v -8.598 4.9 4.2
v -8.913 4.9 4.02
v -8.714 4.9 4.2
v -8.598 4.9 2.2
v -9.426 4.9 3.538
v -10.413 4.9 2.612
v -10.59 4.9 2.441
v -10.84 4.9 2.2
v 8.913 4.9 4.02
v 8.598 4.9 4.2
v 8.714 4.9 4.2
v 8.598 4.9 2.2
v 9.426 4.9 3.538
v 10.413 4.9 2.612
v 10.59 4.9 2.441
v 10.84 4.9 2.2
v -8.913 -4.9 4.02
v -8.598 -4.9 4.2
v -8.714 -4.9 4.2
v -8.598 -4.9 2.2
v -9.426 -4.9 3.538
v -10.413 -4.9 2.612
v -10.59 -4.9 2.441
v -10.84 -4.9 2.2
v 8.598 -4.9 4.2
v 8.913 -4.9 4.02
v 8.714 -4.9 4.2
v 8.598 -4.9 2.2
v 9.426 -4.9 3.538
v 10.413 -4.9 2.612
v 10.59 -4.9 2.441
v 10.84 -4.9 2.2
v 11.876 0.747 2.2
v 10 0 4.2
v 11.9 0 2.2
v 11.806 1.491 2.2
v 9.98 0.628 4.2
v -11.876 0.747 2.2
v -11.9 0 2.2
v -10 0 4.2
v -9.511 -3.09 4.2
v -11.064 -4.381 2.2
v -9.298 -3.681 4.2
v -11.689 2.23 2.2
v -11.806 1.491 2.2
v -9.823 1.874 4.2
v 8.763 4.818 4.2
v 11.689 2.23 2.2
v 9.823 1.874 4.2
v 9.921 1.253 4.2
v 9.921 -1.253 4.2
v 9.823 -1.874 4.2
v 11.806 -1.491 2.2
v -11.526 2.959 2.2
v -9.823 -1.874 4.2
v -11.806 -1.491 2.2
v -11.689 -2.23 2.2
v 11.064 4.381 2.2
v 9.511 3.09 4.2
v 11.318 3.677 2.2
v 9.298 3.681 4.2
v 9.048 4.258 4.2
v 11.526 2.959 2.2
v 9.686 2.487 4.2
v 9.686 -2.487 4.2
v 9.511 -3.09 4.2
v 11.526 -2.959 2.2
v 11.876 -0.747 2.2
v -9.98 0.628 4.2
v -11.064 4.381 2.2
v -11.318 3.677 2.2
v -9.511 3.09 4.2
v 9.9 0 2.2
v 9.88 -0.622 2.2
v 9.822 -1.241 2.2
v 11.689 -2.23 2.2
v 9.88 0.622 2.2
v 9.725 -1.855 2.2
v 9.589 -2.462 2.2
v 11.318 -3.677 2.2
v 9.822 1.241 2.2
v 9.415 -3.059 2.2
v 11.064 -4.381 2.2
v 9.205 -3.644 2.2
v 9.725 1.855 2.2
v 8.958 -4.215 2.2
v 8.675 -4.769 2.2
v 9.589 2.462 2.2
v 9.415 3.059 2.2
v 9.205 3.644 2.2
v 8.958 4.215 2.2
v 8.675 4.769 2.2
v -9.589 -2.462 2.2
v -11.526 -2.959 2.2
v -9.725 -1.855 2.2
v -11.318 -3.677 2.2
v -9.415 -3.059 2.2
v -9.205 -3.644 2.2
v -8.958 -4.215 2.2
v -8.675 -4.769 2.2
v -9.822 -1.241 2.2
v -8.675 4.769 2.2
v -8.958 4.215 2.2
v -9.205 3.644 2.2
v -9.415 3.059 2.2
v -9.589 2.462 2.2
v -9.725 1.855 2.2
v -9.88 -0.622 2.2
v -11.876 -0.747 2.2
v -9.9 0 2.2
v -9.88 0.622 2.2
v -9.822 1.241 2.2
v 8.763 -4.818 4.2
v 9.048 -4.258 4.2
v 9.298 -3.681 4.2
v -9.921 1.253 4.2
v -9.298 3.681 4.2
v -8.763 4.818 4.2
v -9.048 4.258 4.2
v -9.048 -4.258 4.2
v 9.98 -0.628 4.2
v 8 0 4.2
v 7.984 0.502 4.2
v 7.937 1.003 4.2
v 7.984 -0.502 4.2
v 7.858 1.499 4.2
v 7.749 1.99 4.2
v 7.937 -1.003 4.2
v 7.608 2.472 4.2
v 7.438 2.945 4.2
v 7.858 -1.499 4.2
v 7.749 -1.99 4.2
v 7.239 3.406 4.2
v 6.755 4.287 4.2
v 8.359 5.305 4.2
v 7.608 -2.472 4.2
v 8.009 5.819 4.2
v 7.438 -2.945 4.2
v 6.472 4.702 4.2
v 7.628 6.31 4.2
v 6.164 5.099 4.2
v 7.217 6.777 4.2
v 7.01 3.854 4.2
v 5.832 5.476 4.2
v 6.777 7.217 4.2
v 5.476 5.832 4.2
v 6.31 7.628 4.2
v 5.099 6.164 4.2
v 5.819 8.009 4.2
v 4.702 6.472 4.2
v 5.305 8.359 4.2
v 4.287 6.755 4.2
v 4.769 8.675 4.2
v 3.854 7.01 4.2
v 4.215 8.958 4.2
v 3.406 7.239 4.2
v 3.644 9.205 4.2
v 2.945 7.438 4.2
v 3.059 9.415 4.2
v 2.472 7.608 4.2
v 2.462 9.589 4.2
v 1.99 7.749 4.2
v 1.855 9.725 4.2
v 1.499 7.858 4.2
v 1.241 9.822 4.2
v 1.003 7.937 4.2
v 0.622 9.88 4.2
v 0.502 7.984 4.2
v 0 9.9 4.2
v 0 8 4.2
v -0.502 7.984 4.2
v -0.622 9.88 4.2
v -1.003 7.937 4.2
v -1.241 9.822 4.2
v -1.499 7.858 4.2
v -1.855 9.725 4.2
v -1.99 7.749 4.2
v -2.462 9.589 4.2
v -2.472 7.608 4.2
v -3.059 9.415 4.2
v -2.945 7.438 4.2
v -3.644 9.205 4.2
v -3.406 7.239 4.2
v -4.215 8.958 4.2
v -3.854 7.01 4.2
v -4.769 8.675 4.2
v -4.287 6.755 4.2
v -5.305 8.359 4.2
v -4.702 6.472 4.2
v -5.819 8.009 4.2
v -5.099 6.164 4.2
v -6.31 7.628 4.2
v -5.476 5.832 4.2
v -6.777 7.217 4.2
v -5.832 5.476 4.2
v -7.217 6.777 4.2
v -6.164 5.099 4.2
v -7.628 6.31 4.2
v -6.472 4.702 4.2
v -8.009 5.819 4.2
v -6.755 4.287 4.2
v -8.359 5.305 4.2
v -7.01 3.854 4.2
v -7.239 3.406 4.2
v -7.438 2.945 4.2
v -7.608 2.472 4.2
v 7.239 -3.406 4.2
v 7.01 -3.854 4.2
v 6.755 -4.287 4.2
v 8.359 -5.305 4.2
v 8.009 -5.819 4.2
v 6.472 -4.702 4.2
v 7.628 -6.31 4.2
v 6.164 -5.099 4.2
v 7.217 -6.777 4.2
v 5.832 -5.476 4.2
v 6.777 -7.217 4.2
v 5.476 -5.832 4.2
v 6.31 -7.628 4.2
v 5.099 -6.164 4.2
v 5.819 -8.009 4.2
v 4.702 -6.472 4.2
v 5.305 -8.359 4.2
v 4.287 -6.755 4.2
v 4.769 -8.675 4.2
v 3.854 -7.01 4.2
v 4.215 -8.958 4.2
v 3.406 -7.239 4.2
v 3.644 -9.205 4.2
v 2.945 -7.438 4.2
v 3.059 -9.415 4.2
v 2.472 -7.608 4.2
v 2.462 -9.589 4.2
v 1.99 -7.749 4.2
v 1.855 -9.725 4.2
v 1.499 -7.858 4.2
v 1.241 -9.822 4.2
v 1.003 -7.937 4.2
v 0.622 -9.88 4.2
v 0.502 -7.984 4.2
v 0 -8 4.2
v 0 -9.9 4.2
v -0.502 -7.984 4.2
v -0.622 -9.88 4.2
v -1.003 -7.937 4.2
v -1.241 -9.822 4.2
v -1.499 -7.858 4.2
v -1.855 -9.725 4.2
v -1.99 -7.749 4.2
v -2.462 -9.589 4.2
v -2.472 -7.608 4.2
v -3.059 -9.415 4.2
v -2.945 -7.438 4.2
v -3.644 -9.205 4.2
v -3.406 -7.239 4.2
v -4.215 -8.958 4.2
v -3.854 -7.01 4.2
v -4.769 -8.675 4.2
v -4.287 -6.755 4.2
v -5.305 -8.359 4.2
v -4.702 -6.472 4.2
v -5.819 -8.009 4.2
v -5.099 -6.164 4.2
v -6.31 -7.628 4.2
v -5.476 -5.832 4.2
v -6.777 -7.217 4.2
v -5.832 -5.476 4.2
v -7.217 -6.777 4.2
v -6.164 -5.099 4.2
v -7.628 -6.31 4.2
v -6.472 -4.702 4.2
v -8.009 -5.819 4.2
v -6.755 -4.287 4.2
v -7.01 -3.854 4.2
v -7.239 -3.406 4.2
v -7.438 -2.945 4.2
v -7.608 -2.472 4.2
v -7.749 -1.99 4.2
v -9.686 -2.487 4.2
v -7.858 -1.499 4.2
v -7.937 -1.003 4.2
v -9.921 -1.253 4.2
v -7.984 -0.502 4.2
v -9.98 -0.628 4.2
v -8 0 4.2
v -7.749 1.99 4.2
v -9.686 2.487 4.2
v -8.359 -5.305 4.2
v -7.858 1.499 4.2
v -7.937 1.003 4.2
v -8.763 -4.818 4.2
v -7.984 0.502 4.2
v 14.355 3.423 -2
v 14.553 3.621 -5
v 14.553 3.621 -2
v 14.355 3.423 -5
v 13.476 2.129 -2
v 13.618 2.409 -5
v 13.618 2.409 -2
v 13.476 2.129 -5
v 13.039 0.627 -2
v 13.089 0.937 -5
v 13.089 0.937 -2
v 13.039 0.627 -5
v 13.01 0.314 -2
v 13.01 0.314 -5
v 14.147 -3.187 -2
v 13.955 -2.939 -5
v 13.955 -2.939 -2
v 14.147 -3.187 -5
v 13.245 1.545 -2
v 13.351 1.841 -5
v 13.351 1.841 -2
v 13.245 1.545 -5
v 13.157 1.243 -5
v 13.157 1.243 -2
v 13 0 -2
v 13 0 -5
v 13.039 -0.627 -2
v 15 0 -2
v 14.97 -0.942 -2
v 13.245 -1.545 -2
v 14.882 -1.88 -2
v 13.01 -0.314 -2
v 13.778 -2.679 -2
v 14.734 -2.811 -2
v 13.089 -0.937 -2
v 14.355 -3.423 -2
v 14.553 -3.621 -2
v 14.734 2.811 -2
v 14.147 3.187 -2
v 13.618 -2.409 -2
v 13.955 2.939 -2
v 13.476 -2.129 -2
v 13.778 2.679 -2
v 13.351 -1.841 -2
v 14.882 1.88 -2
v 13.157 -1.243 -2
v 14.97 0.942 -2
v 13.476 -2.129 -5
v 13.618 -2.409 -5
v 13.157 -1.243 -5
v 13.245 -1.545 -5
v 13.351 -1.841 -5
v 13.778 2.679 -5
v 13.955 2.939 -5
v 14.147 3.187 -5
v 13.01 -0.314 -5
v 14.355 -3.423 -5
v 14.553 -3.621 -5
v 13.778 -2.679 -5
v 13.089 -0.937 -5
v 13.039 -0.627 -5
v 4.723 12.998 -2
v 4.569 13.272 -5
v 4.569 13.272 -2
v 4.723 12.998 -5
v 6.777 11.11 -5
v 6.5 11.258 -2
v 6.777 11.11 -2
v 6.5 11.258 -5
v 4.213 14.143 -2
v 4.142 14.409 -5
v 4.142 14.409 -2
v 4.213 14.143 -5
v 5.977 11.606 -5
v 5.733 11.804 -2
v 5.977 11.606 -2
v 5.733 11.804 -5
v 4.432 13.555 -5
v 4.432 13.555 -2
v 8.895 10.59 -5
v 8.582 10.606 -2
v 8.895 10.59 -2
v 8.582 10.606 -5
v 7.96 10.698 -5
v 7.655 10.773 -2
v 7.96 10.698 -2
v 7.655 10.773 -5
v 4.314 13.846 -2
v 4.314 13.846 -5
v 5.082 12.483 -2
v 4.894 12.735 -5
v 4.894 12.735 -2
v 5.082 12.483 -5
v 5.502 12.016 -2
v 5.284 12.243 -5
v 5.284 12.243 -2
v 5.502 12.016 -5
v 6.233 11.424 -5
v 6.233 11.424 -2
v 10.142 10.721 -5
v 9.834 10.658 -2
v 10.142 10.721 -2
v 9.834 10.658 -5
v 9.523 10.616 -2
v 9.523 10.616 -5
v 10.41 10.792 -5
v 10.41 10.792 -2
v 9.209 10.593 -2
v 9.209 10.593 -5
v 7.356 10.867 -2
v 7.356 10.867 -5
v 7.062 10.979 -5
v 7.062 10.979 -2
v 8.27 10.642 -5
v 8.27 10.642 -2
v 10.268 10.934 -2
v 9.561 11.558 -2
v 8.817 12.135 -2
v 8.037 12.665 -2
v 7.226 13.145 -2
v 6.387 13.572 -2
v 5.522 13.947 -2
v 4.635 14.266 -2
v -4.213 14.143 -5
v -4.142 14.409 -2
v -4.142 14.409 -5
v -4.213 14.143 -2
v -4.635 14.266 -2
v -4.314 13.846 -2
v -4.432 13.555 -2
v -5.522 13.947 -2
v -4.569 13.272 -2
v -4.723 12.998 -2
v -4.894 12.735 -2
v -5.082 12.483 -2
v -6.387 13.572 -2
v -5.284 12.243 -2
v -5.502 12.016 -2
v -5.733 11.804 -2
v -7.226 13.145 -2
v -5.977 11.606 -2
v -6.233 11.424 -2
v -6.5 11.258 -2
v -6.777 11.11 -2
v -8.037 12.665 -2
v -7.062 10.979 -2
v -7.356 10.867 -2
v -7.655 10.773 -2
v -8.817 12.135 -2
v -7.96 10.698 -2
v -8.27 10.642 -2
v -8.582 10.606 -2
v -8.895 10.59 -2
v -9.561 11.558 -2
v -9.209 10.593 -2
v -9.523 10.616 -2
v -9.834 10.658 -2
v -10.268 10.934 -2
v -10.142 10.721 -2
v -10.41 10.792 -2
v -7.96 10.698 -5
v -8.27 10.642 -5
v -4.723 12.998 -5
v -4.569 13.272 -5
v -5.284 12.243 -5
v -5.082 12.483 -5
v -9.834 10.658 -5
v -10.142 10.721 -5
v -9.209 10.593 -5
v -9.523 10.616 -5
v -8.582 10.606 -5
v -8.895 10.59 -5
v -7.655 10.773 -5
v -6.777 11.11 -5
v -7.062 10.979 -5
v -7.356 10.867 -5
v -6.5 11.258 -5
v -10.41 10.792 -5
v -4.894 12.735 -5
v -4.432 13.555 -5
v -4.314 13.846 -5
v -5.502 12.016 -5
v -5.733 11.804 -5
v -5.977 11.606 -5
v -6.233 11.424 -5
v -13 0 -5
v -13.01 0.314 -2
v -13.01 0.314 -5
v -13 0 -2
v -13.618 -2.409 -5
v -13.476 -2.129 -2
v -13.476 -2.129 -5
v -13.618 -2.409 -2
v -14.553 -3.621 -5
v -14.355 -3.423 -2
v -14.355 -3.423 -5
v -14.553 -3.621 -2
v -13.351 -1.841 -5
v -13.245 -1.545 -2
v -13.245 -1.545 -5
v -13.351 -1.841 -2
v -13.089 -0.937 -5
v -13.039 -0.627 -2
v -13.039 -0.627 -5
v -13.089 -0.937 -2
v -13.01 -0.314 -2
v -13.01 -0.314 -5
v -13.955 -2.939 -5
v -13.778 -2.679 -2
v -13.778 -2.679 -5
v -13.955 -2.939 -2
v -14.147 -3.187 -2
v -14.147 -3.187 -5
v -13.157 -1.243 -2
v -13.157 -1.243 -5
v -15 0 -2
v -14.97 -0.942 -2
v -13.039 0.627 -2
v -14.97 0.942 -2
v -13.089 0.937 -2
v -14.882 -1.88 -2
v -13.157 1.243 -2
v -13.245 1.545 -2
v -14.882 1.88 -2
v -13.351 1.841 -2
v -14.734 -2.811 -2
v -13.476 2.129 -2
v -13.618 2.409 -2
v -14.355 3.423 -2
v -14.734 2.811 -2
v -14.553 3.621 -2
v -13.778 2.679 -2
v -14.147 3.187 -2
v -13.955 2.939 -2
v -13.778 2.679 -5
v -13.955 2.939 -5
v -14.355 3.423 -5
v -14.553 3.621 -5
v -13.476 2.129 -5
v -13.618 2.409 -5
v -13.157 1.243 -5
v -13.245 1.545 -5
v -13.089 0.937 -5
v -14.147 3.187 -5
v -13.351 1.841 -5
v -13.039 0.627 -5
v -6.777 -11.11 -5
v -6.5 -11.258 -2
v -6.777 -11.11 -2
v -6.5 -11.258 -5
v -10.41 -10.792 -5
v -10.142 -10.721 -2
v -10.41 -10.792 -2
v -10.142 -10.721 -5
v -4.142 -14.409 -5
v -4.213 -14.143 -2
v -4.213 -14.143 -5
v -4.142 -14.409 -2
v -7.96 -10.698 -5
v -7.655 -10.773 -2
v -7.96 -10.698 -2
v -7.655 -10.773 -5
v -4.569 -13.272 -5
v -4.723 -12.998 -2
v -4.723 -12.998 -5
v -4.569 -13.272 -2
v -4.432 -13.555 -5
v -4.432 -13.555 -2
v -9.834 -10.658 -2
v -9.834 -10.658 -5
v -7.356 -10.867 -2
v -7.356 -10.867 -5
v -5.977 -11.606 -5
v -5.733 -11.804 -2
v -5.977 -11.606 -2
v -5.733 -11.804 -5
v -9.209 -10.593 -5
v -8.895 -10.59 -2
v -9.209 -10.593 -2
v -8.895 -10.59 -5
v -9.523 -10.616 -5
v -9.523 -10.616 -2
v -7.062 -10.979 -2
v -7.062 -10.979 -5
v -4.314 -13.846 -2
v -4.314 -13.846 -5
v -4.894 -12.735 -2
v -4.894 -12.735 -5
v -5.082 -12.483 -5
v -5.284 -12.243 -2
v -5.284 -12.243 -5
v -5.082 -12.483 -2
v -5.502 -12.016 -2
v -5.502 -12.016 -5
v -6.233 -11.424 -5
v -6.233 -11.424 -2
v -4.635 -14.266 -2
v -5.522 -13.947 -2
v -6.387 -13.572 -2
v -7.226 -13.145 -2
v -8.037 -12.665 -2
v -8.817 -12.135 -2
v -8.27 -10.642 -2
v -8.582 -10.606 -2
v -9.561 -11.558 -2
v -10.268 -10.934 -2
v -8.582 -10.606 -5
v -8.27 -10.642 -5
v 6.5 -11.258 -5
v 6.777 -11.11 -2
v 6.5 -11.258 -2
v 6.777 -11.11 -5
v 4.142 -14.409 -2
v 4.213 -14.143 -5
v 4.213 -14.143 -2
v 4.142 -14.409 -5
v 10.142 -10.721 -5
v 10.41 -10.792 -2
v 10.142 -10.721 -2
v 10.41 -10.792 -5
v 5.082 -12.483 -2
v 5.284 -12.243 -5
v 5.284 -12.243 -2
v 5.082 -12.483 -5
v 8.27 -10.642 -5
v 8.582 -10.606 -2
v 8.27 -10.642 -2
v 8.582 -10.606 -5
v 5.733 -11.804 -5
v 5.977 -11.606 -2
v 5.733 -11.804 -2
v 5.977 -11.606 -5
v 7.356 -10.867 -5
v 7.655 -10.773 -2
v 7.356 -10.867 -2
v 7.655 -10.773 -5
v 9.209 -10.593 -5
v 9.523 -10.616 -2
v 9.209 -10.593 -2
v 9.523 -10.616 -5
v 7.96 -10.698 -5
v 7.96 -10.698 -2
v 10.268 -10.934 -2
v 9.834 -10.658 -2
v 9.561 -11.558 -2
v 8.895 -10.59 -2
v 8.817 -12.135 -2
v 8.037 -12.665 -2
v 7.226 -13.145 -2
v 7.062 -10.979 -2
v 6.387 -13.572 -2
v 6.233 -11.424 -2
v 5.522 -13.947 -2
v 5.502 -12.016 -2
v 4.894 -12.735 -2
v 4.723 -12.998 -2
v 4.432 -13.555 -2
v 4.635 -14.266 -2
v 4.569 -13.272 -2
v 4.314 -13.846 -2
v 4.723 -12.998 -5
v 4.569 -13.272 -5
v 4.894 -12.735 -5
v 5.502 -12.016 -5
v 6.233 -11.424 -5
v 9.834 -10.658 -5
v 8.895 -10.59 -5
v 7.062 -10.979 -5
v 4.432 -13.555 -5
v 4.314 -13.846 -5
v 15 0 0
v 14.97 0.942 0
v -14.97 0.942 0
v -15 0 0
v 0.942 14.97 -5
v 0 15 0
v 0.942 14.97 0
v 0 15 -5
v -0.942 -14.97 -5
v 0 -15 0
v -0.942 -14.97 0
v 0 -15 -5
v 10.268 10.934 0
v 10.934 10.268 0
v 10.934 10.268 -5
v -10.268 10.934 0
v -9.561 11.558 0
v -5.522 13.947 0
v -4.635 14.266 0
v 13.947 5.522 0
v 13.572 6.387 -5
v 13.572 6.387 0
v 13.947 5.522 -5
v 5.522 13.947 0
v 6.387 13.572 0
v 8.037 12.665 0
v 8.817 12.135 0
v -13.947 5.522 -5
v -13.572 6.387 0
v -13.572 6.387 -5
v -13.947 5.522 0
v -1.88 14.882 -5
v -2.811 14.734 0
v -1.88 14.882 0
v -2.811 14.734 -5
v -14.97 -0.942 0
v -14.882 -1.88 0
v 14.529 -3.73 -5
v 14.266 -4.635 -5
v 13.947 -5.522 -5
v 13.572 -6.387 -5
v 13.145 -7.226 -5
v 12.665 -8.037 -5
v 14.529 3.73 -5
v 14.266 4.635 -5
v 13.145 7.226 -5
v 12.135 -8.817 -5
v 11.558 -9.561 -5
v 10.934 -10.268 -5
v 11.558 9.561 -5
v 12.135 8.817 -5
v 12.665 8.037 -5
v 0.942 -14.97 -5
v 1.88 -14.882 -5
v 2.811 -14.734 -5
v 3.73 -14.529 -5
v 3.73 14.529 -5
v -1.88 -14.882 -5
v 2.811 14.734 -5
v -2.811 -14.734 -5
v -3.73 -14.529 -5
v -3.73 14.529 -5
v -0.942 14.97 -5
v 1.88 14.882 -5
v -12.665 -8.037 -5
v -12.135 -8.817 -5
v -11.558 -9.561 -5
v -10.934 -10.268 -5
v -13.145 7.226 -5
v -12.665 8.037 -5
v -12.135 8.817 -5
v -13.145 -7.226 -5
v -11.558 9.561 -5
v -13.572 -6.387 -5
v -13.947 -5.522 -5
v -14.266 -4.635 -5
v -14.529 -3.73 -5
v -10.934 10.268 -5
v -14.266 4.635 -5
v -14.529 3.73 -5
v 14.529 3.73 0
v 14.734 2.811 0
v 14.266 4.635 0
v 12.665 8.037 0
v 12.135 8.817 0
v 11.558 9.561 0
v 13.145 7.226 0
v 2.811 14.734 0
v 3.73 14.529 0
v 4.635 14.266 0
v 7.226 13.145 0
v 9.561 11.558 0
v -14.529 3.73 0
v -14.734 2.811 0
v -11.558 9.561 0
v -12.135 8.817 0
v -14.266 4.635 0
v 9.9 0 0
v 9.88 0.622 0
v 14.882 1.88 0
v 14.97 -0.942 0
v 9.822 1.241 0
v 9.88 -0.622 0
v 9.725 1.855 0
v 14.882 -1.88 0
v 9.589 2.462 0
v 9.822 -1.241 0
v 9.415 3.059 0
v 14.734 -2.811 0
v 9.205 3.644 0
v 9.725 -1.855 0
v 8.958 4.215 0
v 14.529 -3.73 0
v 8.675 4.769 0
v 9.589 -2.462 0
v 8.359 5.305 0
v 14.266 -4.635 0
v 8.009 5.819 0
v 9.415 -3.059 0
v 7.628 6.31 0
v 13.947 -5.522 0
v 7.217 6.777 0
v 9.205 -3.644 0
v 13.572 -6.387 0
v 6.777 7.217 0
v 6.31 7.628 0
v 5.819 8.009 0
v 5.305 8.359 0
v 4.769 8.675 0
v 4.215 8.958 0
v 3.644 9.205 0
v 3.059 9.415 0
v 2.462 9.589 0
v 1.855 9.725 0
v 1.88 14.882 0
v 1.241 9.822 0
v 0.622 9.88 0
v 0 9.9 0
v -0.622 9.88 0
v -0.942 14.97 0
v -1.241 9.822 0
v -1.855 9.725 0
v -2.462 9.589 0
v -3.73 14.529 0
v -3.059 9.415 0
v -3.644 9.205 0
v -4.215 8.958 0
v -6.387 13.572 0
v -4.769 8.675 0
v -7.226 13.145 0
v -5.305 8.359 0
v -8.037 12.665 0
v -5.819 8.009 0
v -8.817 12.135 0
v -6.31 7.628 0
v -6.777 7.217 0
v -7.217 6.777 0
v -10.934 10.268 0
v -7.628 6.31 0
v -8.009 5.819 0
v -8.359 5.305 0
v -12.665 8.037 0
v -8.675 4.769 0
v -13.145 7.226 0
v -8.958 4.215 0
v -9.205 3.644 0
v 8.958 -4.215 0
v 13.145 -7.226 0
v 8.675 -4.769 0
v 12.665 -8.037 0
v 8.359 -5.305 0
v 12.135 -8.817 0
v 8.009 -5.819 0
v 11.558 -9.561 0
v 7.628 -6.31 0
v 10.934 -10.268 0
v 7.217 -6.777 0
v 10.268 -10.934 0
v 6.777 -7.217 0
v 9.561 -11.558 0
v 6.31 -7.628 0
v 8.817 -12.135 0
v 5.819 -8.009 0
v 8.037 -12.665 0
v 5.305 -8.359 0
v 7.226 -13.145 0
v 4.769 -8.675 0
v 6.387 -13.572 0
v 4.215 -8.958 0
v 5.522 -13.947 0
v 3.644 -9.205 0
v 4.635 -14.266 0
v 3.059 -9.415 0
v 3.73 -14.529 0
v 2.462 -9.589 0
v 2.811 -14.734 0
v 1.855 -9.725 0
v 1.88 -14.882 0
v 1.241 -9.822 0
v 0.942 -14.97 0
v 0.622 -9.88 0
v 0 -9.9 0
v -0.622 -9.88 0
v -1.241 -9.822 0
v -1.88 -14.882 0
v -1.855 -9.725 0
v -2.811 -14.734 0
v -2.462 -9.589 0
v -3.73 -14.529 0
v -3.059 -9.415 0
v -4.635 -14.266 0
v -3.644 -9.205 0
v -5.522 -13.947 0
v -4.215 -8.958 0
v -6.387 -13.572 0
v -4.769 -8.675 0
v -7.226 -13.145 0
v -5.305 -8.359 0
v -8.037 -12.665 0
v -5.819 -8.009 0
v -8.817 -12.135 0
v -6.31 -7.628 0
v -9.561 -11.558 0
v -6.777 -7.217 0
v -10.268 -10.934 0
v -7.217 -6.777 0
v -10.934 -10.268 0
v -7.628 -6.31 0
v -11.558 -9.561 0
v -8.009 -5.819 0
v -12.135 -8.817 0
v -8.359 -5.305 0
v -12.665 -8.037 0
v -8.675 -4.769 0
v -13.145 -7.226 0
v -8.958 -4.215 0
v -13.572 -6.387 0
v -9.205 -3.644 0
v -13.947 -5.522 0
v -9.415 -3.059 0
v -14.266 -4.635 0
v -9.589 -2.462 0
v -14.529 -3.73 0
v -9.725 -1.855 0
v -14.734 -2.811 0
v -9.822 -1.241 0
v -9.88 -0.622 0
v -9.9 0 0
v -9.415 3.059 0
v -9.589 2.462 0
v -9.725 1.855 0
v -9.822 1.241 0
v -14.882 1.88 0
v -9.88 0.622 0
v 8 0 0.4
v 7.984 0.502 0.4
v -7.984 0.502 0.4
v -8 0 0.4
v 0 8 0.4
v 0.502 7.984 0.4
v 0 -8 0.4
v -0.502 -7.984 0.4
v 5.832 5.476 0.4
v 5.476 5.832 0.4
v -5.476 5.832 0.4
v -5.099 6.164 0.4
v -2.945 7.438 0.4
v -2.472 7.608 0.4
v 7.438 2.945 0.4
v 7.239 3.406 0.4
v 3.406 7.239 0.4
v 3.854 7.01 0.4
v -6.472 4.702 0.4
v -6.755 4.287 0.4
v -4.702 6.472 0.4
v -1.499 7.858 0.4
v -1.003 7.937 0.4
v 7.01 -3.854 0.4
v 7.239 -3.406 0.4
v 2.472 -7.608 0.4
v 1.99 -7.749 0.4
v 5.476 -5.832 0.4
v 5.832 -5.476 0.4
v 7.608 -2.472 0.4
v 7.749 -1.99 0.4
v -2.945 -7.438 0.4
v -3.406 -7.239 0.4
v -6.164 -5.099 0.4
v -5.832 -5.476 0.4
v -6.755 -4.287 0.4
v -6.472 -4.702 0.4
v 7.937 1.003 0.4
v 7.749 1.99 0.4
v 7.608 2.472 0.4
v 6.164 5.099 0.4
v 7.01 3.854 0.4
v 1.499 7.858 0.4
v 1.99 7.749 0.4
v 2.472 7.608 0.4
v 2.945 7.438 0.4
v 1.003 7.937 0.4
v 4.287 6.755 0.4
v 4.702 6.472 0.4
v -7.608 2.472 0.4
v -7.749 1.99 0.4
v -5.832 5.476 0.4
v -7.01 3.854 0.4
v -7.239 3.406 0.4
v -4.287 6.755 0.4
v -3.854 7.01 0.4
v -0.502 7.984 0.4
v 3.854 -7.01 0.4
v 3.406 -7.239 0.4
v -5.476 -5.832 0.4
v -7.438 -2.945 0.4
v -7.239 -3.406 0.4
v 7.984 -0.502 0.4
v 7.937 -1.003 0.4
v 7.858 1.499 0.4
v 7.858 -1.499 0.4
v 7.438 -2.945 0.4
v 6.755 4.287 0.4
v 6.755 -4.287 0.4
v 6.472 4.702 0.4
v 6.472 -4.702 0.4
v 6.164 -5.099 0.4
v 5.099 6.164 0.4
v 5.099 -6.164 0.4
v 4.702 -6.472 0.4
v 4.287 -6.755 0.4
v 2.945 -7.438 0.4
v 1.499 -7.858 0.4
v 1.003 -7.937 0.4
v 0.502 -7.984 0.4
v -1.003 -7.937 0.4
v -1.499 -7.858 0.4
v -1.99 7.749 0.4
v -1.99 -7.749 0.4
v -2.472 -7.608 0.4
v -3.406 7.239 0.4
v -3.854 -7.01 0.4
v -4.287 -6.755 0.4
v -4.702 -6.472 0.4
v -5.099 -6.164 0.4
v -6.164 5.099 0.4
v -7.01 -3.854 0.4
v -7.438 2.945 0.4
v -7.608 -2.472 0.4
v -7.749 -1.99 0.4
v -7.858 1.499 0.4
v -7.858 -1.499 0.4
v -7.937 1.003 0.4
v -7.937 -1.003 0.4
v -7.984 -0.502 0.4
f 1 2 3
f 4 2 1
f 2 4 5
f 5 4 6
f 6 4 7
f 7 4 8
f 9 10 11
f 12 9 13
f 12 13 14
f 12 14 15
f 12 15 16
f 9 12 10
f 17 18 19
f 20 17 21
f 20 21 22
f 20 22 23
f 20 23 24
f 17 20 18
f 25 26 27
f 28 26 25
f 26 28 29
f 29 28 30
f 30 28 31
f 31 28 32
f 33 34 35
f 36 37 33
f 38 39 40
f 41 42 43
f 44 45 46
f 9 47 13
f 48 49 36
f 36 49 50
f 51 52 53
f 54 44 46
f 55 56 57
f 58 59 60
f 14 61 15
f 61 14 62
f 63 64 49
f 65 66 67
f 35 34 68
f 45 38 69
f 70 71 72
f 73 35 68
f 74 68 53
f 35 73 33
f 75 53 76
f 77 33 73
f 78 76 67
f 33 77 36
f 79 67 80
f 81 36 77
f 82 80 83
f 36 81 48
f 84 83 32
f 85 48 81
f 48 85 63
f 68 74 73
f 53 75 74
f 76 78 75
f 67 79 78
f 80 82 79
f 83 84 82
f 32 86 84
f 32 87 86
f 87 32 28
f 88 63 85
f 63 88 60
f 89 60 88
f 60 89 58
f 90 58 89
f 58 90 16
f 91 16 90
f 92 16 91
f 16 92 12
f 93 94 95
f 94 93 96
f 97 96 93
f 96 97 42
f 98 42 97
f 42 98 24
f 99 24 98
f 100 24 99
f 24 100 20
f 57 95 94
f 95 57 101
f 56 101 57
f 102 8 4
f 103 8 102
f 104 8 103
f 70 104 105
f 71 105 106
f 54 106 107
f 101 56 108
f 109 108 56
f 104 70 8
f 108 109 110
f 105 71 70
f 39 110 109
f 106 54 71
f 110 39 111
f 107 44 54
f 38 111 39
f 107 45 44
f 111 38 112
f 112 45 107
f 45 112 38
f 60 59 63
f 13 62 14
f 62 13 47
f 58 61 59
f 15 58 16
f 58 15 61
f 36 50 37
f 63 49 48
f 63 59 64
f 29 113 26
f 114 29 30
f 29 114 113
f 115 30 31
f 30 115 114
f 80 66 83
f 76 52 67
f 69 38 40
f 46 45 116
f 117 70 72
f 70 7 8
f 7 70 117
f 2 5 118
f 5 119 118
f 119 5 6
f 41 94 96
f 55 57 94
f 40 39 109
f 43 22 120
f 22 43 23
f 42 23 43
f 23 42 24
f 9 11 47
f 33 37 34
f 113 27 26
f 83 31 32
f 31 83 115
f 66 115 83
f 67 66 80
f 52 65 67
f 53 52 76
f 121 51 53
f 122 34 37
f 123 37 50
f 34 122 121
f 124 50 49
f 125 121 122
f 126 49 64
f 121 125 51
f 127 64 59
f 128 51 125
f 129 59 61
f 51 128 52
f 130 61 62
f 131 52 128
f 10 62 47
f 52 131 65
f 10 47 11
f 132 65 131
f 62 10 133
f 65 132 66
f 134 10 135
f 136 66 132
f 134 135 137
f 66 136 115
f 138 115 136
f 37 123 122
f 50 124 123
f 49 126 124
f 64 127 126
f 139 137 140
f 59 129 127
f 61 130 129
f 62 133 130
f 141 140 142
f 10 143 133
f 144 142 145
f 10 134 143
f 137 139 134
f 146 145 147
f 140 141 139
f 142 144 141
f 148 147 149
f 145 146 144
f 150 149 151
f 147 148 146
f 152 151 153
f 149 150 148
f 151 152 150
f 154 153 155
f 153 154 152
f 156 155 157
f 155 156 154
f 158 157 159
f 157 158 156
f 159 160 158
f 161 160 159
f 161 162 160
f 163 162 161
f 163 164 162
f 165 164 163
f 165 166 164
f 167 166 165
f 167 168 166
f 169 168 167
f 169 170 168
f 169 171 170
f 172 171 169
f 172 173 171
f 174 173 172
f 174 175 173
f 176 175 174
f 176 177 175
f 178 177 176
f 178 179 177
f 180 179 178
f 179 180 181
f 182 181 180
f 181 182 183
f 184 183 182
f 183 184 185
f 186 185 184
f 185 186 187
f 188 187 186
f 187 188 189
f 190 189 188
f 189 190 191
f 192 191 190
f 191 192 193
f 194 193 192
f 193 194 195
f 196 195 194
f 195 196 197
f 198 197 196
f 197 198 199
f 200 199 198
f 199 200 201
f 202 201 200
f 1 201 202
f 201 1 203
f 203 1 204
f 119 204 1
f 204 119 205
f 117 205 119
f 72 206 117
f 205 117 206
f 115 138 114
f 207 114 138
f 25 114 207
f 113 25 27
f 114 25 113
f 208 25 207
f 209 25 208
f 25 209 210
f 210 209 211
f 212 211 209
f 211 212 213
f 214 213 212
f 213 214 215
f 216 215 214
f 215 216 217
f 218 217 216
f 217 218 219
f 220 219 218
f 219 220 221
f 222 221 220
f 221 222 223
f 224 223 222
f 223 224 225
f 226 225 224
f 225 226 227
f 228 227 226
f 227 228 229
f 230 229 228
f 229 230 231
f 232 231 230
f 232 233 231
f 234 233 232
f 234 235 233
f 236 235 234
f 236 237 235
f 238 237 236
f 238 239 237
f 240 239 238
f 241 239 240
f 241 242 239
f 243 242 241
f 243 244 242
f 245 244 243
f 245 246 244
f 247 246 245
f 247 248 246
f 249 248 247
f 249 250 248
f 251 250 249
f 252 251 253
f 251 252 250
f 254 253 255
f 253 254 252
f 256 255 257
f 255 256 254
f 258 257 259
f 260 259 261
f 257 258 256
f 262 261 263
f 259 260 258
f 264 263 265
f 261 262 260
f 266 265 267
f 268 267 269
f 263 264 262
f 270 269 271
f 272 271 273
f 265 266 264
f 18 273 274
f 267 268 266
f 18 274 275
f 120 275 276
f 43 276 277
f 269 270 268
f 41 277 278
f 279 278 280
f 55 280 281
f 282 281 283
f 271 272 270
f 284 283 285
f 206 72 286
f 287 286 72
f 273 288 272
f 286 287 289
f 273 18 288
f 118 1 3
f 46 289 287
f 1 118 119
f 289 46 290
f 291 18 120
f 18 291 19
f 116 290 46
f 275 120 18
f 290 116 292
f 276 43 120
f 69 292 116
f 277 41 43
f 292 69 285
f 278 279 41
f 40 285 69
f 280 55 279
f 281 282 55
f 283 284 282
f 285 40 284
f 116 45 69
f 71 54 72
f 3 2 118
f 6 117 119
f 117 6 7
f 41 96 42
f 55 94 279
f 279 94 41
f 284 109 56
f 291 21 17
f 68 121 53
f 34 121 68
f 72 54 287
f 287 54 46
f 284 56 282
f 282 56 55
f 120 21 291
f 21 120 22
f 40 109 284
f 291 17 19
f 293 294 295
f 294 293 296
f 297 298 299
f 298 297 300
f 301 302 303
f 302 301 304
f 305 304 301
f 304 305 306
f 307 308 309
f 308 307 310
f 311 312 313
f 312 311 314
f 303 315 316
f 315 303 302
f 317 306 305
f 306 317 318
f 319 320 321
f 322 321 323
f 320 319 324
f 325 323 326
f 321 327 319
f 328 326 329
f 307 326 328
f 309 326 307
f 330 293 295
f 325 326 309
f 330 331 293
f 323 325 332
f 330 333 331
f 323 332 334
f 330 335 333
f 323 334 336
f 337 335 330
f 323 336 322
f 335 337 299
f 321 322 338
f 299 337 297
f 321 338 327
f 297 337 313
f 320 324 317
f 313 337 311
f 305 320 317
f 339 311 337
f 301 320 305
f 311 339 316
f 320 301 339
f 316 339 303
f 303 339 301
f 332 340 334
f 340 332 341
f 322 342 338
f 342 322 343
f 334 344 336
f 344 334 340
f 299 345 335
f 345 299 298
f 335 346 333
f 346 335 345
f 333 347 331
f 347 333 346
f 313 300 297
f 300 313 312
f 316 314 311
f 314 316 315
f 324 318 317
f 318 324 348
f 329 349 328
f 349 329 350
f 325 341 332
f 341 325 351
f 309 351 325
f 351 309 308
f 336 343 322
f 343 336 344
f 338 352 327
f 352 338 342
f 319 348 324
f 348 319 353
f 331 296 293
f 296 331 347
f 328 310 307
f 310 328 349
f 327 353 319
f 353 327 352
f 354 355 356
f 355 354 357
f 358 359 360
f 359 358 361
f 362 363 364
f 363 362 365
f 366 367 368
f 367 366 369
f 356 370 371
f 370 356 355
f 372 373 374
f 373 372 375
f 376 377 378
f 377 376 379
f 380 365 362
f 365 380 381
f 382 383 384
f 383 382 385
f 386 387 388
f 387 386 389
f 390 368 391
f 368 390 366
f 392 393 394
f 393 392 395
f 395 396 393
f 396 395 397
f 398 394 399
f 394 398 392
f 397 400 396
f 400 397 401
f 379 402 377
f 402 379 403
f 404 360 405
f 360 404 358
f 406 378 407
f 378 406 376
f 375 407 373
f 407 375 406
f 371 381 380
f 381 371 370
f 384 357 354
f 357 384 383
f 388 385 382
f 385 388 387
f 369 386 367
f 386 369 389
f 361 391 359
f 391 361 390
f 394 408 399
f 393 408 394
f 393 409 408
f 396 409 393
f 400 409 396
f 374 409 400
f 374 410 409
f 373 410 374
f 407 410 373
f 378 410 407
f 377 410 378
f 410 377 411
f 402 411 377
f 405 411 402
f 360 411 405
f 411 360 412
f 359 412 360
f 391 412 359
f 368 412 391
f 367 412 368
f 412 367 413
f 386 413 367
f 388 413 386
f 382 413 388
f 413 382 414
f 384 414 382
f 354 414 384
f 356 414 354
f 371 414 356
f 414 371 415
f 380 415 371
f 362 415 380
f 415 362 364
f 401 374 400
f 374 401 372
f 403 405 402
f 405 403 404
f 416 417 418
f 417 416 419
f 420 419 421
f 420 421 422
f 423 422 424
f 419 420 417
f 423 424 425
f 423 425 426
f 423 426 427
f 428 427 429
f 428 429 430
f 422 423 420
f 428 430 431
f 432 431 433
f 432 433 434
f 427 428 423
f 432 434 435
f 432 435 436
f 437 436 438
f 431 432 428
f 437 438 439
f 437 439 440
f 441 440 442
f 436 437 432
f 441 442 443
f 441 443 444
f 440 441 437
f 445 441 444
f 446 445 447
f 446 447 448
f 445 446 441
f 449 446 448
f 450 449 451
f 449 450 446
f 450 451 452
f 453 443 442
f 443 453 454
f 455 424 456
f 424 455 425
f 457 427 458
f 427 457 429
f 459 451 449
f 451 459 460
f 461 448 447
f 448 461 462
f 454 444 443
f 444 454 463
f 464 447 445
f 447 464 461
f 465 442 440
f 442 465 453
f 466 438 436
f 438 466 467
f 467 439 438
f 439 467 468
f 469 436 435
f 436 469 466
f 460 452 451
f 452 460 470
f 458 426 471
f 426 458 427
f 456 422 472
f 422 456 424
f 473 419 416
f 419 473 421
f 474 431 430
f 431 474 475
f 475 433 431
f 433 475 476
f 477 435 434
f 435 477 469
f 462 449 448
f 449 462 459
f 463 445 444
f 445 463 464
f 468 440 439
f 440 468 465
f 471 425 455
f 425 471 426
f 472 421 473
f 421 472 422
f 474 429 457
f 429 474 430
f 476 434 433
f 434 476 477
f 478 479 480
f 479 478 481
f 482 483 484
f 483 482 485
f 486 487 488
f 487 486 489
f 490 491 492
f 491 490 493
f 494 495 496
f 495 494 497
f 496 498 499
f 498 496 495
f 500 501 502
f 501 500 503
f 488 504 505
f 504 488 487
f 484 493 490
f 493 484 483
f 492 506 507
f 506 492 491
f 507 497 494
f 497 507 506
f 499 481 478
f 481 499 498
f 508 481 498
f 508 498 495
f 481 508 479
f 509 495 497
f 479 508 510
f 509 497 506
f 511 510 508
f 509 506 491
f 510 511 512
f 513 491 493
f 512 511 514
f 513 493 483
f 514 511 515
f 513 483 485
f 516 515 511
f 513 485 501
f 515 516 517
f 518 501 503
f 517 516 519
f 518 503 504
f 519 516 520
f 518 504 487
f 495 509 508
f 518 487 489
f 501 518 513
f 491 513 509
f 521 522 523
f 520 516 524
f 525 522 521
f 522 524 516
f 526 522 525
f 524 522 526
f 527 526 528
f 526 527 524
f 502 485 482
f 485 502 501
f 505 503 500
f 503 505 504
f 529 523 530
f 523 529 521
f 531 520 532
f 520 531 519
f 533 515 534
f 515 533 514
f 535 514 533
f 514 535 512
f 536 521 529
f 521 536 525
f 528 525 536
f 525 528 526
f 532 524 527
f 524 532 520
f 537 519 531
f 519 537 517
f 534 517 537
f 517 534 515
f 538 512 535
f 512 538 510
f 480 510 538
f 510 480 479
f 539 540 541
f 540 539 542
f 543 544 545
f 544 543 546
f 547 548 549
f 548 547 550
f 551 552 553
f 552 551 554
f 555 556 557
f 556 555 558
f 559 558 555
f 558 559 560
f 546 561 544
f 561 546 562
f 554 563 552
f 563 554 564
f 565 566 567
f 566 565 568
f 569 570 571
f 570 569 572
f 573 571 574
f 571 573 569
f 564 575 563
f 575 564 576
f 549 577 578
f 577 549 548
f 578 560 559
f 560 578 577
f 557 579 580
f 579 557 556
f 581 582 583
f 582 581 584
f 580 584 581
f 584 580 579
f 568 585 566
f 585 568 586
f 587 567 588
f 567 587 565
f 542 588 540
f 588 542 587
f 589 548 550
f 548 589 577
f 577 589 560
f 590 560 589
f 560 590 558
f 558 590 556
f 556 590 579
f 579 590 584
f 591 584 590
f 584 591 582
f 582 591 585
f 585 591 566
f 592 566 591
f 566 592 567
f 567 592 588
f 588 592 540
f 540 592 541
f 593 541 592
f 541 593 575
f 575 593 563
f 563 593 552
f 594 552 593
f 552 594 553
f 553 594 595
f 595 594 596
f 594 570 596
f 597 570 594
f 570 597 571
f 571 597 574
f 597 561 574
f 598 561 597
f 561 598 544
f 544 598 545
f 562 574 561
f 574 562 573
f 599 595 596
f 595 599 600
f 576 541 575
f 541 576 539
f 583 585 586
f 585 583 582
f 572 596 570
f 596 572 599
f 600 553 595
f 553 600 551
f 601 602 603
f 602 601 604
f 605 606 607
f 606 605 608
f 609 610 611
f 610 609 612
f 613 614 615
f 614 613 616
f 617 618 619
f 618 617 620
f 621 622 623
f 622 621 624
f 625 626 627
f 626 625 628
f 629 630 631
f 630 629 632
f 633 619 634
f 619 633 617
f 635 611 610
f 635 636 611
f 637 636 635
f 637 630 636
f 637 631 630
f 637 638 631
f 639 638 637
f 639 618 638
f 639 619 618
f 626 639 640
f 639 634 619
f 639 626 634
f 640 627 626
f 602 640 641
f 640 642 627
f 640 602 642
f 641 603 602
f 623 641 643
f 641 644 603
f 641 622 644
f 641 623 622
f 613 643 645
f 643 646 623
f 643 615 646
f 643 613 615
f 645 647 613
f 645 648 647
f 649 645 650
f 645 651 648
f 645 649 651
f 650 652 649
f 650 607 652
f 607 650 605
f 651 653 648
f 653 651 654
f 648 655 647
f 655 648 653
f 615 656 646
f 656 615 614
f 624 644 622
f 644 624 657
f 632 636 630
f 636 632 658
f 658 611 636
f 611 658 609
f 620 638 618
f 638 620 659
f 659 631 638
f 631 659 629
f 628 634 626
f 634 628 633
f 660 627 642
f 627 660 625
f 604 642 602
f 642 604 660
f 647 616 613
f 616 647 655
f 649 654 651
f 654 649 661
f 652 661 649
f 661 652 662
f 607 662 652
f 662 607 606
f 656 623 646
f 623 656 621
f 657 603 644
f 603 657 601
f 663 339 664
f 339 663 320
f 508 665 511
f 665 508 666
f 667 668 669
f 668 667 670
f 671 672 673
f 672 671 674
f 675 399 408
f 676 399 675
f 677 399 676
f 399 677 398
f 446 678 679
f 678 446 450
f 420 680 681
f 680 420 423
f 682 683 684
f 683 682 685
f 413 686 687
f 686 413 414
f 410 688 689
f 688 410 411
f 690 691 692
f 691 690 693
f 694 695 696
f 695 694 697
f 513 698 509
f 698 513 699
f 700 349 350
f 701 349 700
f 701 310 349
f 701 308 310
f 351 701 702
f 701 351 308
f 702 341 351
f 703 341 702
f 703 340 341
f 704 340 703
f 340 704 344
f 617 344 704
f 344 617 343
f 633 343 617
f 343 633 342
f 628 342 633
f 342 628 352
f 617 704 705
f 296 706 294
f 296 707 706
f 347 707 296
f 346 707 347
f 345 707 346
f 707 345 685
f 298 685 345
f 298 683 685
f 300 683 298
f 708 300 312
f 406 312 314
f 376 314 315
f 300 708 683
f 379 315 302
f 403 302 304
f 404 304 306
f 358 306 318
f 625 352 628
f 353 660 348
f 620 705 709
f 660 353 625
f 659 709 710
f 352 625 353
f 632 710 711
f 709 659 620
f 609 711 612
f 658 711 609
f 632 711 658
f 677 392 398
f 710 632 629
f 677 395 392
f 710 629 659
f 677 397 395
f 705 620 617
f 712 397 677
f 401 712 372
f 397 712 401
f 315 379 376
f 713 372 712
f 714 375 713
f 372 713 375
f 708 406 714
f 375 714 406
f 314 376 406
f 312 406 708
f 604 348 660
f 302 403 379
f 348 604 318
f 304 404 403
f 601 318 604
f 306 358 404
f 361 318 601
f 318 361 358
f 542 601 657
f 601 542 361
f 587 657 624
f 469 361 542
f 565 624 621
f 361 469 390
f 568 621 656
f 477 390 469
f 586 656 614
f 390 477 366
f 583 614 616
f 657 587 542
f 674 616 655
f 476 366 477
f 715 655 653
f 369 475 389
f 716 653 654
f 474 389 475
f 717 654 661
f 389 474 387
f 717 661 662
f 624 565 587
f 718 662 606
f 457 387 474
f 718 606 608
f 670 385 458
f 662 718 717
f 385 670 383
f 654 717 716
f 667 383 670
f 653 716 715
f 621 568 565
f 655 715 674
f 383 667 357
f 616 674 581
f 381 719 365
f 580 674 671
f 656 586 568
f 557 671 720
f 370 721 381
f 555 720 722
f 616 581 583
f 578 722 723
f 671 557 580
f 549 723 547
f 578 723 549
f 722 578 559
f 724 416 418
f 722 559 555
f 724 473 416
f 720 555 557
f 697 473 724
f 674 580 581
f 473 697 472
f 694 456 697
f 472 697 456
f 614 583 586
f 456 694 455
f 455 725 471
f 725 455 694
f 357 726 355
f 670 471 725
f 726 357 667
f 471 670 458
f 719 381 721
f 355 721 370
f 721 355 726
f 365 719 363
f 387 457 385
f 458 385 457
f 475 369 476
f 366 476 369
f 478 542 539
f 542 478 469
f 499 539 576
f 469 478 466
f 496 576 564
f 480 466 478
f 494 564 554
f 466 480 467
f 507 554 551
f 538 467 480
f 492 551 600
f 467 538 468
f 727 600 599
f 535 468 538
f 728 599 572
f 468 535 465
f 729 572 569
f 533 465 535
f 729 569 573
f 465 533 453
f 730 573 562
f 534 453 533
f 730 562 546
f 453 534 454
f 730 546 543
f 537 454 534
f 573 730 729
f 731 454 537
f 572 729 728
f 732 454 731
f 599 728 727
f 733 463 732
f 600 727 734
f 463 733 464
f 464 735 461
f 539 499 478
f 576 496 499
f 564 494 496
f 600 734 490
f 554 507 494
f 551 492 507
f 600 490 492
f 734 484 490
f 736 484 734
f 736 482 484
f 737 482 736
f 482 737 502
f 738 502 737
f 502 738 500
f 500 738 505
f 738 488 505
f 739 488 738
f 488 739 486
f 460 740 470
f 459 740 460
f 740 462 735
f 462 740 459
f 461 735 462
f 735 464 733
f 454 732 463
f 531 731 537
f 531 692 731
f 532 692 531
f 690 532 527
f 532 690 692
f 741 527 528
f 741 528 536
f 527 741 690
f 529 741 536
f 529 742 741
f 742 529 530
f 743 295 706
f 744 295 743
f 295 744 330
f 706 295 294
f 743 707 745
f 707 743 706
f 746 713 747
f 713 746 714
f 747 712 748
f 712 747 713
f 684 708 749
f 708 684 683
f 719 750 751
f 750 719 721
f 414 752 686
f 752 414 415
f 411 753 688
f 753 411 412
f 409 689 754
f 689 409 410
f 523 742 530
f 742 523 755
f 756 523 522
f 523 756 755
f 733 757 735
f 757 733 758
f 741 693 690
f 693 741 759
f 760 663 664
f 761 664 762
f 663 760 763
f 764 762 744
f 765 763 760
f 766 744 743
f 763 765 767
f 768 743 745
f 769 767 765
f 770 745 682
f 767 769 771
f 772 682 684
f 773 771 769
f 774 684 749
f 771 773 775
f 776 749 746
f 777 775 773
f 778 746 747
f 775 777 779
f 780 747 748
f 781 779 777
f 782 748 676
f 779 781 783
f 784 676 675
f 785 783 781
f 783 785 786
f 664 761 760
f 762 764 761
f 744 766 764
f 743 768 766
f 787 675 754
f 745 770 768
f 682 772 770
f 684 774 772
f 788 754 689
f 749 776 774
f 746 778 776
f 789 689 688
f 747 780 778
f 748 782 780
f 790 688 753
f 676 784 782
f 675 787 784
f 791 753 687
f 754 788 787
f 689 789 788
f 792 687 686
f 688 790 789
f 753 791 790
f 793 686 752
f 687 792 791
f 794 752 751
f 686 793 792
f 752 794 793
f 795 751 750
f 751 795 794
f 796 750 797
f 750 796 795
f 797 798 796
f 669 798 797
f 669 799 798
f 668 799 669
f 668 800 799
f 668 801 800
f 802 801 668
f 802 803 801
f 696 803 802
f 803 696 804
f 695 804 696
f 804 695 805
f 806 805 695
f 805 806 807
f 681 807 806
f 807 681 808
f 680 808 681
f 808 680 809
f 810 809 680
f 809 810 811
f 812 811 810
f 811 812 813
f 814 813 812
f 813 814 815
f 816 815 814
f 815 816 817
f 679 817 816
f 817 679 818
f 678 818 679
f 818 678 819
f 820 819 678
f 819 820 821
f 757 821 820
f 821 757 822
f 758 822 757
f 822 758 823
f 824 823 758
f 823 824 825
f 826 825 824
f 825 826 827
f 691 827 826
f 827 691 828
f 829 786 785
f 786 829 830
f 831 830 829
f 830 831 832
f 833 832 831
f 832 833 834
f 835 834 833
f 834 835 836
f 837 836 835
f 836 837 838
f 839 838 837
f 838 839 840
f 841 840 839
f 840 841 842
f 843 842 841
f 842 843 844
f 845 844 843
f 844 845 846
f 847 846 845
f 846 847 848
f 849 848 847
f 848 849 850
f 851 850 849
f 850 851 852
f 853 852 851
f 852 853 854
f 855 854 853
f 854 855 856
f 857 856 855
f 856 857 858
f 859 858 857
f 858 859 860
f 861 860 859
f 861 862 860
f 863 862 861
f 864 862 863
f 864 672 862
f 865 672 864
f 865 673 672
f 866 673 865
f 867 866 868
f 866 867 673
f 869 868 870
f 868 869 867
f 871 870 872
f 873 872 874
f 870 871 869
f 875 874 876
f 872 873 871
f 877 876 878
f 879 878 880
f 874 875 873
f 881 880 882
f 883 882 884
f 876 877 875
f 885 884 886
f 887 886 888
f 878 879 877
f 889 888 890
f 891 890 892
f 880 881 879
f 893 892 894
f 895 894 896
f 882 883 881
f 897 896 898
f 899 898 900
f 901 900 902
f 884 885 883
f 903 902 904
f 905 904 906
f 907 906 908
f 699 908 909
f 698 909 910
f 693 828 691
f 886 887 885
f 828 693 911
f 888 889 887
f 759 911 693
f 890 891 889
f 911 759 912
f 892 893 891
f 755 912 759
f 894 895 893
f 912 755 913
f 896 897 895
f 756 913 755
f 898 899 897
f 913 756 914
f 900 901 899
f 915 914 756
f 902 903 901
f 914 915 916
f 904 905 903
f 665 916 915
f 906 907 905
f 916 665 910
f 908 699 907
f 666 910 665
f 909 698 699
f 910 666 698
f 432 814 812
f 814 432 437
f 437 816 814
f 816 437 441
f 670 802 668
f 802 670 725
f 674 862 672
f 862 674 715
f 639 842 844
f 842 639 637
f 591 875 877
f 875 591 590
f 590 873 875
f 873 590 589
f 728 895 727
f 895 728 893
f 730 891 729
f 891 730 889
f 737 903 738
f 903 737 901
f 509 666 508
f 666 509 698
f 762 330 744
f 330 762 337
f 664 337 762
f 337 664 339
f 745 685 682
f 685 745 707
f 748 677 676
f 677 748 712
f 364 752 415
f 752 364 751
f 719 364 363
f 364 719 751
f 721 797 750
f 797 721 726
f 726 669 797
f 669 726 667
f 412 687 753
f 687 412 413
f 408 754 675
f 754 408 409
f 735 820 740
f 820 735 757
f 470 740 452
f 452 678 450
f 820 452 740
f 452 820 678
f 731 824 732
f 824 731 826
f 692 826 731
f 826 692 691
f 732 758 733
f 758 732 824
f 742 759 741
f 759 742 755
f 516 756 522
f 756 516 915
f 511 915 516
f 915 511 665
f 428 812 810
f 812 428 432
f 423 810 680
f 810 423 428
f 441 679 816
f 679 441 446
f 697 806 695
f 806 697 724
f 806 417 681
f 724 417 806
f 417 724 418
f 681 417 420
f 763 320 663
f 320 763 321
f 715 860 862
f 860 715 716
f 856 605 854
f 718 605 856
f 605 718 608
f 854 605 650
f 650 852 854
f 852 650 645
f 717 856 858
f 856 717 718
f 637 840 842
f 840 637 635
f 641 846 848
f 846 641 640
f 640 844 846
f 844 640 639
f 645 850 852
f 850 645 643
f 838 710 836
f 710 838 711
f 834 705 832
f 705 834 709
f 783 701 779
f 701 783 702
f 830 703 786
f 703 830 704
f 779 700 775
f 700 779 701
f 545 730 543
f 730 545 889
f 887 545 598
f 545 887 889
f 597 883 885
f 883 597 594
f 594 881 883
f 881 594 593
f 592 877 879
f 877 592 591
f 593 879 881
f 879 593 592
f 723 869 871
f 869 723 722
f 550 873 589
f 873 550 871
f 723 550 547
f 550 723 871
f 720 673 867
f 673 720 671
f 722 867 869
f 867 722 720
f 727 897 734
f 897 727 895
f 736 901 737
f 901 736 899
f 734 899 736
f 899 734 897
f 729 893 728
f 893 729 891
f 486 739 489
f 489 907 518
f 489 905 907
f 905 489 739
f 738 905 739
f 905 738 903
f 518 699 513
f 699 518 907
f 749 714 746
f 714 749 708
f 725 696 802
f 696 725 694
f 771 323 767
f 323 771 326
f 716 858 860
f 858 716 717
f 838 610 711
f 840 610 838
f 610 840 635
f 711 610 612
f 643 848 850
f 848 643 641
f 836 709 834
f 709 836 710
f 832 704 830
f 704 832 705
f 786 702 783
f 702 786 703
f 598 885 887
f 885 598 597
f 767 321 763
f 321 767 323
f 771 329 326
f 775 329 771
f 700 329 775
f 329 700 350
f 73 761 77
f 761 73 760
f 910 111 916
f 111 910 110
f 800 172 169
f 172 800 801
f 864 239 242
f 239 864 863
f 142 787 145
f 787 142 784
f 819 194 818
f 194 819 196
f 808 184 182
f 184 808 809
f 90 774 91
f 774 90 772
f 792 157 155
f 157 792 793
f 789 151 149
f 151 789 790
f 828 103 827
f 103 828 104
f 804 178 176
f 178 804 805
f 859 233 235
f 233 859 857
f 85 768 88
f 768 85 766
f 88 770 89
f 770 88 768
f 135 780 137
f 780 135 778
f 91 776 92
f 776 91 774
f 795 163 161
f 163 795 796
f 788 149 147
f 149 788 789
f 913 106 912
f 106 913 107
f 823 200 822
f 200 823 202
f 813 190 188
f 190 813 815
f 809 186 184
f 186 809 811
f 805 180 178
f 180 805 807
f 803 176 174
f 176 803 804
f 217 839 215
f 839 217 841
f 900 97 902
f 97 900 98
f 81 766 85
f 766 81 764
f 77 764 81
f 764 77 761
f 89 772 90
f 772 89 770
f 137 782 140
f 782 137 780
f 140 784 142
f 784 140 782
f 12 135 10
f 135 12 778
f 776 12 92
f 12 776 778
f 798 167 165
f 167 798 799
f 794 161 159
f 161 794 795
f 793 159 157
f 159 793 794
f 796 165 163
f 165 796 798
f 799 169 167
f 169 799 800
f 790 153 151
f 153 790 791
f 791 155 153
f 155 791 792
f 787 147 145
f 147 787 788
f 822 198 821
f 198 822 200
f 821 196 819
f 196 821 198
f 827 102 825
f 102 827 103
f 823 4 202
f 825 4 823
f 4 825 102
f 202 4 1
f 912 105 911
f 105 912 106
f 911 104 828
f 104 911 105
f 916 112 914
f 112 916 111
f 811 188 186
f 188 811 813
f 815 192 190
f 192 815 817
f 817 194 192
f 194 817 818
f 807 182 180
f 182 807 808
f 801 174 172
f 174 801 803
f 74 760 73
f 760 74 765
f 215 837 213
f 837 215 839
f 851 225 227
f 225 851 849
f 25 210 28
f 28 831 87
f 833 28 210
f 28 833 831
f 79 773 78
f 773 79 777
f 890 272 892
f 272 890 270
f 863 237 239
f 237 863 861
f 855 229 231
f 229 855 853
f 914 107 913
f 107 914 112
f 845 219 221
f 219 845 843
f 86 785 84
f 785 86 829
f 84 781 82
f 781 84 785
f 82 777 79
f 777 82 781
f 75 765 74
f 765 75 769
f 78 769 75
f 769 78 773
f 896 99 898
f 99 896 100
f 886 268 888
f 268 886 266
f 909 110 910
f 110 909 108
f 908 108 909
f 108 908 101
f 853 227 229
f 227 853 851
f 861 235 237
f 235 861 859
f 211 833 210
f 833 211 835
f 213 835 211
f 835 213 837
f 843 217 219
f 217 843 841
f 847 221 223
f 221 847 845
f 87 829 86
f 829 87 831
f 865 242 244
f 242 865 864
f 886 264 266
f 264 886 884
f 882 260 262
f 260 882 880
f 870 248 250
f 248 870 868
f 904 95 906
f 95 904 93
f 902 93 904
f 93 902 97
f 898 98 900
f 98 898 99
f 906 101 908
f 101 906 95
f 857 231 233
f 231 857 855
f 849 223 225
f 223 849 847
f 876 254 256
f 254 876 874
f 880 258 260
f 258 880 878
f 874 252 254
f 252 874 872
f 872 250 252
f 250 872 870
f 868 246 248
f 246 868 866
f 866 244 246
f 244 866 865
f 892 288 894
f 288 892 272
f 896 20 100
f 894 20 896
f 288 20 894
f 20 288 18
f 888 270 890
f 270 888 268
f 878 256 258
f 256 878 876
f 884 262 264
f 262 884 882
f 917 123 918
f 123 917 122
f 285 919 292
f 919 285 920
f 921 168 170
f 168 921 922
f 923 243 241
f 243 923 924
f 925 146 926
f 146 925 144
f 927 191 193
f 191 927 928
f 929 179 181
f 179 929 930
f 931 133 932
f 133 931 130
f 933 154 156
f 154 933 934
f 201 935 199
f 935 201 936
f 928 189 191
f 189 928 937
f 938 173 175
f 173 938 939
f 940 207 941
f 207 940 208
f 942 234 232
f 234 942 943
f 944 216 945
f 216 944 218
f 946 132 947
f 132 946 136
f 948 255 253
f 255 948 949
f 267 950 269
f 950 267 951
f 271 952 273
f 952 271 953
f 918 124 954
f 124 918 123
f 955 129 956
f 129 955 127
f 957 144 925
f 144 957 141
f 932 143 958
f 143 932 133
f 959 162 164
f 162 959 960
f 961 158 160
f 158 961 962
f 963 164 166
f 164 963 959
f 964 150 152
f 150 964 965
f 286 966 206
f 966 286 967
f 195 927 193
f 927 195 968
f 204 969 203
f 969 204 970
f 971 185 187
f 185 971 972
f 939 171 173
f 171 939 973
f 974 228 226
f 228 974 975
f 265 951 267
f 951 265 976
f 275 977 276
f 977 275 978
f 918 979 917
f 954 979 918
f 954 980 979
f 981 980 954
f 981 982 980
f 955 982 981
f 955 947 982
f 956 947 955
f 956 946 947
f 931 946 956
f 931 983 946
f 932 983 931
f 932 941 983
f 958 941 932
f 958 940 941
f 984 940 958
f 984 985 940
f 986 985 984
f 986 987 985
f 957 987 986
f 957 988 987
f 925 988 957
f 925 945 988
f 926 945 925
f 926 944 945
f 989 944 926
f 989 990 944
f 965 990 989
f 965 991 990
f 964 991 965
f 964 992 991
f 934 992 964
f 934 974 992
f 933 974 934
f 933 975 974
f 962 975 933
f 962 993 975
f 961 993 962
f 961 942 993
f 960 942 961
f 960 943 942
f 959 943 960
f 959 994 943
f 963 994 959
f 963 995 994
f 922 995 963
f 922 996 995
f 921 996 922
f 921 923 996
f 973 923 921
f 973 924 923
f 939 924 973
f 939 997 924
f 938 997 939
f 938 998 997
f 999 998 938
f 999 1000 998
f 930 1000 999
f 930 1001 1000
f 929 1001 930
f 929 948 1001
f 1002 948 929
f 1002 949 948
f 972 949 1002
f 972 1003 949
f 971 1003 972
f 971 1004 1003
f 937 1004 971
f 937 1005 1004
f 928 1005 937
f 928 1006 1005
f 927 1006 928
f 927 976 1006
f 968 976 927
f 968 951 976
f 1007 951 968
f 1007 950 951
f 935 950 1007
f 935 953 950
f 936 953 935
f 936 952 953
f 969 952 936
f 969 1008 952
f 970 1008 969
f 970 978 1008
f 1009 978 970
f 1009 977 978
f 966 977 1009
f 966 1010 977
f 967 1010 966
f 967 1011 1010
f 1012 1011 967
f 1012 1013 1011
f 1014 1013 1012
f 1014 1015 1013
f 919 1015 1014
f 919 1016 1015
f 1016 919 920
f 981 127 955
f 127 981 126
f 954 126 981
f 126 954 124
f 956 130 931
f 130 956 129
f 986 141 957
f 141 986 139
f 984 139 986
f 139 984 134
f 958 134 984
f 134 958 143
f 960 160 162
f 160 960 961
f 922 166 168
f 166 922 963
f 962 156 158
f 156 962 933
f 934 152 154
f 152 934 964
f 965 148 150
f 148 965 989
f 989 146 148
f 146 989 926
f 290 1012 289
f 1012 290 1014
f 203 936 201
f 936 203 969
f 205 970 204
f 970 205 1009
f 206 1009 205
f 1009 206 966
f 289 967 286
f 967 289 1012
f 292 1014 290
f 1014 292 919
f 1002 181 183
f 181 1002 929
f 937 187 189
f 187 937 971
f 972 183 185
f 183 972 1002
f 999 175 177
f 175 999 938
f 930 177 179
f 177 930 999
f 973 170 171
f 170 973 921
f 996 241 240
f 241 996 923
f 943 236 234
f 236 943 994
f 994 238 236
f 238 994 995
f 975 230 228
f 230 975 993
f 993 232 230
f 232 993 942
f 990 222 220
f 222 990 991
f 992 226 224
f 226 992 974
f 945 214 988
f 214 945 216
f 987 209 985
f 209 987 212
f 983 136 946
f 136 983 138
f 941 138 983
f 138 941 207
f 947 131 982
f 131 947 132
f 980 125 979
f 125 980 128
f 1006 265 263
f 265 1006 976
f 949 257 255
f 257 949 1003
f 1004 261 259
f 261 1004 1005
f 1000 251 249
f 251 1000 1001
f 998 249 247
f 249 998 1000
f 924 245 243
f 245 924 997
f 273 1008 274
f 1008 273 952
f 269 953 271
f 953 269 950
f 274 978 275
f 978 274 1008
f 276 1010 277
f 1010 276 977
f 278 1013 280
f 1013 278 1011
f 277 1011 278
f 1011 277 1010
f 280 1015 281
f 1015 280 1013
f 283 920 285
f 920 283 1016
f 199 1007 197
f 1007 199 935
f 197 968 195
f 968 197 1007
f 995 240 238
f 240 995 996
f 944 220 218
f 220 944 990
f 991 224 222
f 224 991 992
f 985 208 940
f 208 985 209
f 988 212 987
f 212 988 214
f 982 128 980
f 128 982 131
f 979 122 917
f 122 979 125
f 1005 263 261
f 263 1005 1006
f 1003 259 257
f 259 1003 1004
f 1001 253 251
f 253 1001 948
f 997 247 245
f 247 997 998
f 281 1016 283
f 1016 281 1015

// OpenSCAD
// file: lib/portable_screw_driver_set_lib.scad
/* Portable screw driver container module library file */

module portable_screw_driver_set_container() {

	difference(convexity = 10) {
		union() {
			difference() {
				union() {
					cylinder(h = outer_hull_len, d = outer_hull_dia);
					translate([0, 0, outer_hull_len]) cylinder(h = outer_hull_cone, d1 = outer_hull_dia, d2 = outer_hull_dia - outer_hull_cone * 2);
				}
				for(ang = [0: outer_rib_cnt - 1]) rotate([0, 0, ang * 360 / outer_rib_cnt]) translate([outer_hull_dia / 2 + outer_rib_dia / 2 - outer_rib_depth, 0, outer_rib_offset]) cylinder(d = outer_rib_dia, h = outer_hull_len);
			}
		}

		union() {
			cylinder(h = inner_container_len, d = inner_container_dia);
			translate([0, 0, inner_container_len]) cylinder(h = inner_container_cone, d1 = inner_container_dia, d2 = inner_container_dia - inner_container_cone * 2);
		}

		translate([0, 0, outer_hull_len + outer_hull_cone - hexal_hole_depth+ 0.1]) cylinder(d = hexal_hole_dia, h = hexal_hole_depth, $fn = 6);

		union() {
			translate([0, 0, -lock_offset]) cylinder(h = lock_offset * 2, d = inner_container_dia + lock_tol);
			translate([0, 0, lock_offset]) cylinder(h = lock_hight, d = inner_container_dia + lock_depth * 2 + lock_tol);
			translate([0, 0, lock_offset + lock_depth]) cylinder(h = lock_hight, d1 = inner_container_dia + lock_depth * 2 + lock_tol, d2 = inner_container_dia);

			intersection() {
				translate([0, 0, lock_offset - lock_tol]) cylinder(h = lock_offset, d = inner_container_dia + lock_depth * 2 + lock_tol);
				for(ang = [0: lock_cnt - 1]) rotate([0, 0, ang * 360 / lock_cnt + 360 / lock_cnt / 2]) translate([0, -(lock_br - lock_tol) / 2, -lock_offset]) cube([inner_container_dia, lock_br - lock_tol, lock_offset * 2]);
			}

			intersection() {
				translate([0, 0, -lock_offset]) cylinder(h = lock_offset * 2, d = inner_container_dia + lock_depth * 2 + lock_tol);
				for(ang = [0: lock_cnt - 1]) rotate([0, 0, ang * 360 / lock_cnt]) translate([0, -(lock_br - lock_tol) / 2, -lock_offset]) cube([inner_container_dia, lock_br - lock_tol, lock_offset * 2]);
			}
		}
	}
}

module portable_screw_driver_set_lid() {

	difference() {
		union() {
			translate([0, 0, -lock_offset + lock_tol]) cylinder(h = lock_offset * 2 + lock_hight, d = inner_container_dia - lock_tol);

			intersection() {
				translate([0, 0, lock_offset + lock_tol]) cylinder(h = lock_hight, d1 = inner_container_dia + lock_depth * 2 - lock_tol, d2 = inner_container_dia);
				for(ang = [0: lock_cnt - 1]) rotate([0, 0, ang * 360 / lock_cnt]) translate([0, -(lock_br - lock_tol) / 2, lock_offset]) cube([inner_container_dia, lock_br - lock_tol, lock_offset * 2]);
			}

			difference() {
				translate([0, 0, -lid_len]) cylinder(h = lid_len, d = lid_dia);
				for(ang = [0: lid_rib_cnt - 1]) rotate([0, 0, ang * 360 / lid_rib_cnt]) translate([lid_dia / 2 + lid_rib_dia / 2 - lid_rib_depth, 0, -lid_len - lid_rib_offset]) cylinder(d = lid_rib_dia, h = lid_len);
			}
		}

		translate([0, 0, -lid_hole_len + lock_offset + lock_hight + lock_tol * 2]) cylinder(h = lid_hole_len + lock_tol, d = lid_hole_dia);
	}
}
// file: lib/portable_screw_driver_set_xs_conf.scad
/* Portable screw driver container configuration file */

inner_container_len = 30;
inner_container_dia = 20;
inner_container_cone = 6;

outer_hull_len = 45;
outer_hull_dia = 30;
outer_hull_cone = 6;

outer_rib_cnt = 6;
outer_rib_depth = 2;
outer_rib_dia = 10;
outer_rib_offset = 10;

hexal_hole_dia = 9;
hexal_hole_depth = 10;

lock_offset = 2;
lock_depth = 2;
lock_hight = 2;
lock_cnt = 2;
lock_br = 10;
lock_tol = 0.2;

lid_len = 5;
lid_dia = outer_hull_dia;

lid_rib_cnt = outer_rib_cnt;
lid_rib_depth = outer_rib_depth;
lid_rib_dia = outer_rib_dia;
lid_rib_offset = 2;

lid_hole_len = 4;
lid_hole_dia = inner_container_dia - 4;

$fn = 100;
// main file
include<lib/portable_screw_driver_set_xs_conf.scad>;
include<lib/portable_screw_driver_set_lib.scad>;

portable_screw_driver_set_lid();
